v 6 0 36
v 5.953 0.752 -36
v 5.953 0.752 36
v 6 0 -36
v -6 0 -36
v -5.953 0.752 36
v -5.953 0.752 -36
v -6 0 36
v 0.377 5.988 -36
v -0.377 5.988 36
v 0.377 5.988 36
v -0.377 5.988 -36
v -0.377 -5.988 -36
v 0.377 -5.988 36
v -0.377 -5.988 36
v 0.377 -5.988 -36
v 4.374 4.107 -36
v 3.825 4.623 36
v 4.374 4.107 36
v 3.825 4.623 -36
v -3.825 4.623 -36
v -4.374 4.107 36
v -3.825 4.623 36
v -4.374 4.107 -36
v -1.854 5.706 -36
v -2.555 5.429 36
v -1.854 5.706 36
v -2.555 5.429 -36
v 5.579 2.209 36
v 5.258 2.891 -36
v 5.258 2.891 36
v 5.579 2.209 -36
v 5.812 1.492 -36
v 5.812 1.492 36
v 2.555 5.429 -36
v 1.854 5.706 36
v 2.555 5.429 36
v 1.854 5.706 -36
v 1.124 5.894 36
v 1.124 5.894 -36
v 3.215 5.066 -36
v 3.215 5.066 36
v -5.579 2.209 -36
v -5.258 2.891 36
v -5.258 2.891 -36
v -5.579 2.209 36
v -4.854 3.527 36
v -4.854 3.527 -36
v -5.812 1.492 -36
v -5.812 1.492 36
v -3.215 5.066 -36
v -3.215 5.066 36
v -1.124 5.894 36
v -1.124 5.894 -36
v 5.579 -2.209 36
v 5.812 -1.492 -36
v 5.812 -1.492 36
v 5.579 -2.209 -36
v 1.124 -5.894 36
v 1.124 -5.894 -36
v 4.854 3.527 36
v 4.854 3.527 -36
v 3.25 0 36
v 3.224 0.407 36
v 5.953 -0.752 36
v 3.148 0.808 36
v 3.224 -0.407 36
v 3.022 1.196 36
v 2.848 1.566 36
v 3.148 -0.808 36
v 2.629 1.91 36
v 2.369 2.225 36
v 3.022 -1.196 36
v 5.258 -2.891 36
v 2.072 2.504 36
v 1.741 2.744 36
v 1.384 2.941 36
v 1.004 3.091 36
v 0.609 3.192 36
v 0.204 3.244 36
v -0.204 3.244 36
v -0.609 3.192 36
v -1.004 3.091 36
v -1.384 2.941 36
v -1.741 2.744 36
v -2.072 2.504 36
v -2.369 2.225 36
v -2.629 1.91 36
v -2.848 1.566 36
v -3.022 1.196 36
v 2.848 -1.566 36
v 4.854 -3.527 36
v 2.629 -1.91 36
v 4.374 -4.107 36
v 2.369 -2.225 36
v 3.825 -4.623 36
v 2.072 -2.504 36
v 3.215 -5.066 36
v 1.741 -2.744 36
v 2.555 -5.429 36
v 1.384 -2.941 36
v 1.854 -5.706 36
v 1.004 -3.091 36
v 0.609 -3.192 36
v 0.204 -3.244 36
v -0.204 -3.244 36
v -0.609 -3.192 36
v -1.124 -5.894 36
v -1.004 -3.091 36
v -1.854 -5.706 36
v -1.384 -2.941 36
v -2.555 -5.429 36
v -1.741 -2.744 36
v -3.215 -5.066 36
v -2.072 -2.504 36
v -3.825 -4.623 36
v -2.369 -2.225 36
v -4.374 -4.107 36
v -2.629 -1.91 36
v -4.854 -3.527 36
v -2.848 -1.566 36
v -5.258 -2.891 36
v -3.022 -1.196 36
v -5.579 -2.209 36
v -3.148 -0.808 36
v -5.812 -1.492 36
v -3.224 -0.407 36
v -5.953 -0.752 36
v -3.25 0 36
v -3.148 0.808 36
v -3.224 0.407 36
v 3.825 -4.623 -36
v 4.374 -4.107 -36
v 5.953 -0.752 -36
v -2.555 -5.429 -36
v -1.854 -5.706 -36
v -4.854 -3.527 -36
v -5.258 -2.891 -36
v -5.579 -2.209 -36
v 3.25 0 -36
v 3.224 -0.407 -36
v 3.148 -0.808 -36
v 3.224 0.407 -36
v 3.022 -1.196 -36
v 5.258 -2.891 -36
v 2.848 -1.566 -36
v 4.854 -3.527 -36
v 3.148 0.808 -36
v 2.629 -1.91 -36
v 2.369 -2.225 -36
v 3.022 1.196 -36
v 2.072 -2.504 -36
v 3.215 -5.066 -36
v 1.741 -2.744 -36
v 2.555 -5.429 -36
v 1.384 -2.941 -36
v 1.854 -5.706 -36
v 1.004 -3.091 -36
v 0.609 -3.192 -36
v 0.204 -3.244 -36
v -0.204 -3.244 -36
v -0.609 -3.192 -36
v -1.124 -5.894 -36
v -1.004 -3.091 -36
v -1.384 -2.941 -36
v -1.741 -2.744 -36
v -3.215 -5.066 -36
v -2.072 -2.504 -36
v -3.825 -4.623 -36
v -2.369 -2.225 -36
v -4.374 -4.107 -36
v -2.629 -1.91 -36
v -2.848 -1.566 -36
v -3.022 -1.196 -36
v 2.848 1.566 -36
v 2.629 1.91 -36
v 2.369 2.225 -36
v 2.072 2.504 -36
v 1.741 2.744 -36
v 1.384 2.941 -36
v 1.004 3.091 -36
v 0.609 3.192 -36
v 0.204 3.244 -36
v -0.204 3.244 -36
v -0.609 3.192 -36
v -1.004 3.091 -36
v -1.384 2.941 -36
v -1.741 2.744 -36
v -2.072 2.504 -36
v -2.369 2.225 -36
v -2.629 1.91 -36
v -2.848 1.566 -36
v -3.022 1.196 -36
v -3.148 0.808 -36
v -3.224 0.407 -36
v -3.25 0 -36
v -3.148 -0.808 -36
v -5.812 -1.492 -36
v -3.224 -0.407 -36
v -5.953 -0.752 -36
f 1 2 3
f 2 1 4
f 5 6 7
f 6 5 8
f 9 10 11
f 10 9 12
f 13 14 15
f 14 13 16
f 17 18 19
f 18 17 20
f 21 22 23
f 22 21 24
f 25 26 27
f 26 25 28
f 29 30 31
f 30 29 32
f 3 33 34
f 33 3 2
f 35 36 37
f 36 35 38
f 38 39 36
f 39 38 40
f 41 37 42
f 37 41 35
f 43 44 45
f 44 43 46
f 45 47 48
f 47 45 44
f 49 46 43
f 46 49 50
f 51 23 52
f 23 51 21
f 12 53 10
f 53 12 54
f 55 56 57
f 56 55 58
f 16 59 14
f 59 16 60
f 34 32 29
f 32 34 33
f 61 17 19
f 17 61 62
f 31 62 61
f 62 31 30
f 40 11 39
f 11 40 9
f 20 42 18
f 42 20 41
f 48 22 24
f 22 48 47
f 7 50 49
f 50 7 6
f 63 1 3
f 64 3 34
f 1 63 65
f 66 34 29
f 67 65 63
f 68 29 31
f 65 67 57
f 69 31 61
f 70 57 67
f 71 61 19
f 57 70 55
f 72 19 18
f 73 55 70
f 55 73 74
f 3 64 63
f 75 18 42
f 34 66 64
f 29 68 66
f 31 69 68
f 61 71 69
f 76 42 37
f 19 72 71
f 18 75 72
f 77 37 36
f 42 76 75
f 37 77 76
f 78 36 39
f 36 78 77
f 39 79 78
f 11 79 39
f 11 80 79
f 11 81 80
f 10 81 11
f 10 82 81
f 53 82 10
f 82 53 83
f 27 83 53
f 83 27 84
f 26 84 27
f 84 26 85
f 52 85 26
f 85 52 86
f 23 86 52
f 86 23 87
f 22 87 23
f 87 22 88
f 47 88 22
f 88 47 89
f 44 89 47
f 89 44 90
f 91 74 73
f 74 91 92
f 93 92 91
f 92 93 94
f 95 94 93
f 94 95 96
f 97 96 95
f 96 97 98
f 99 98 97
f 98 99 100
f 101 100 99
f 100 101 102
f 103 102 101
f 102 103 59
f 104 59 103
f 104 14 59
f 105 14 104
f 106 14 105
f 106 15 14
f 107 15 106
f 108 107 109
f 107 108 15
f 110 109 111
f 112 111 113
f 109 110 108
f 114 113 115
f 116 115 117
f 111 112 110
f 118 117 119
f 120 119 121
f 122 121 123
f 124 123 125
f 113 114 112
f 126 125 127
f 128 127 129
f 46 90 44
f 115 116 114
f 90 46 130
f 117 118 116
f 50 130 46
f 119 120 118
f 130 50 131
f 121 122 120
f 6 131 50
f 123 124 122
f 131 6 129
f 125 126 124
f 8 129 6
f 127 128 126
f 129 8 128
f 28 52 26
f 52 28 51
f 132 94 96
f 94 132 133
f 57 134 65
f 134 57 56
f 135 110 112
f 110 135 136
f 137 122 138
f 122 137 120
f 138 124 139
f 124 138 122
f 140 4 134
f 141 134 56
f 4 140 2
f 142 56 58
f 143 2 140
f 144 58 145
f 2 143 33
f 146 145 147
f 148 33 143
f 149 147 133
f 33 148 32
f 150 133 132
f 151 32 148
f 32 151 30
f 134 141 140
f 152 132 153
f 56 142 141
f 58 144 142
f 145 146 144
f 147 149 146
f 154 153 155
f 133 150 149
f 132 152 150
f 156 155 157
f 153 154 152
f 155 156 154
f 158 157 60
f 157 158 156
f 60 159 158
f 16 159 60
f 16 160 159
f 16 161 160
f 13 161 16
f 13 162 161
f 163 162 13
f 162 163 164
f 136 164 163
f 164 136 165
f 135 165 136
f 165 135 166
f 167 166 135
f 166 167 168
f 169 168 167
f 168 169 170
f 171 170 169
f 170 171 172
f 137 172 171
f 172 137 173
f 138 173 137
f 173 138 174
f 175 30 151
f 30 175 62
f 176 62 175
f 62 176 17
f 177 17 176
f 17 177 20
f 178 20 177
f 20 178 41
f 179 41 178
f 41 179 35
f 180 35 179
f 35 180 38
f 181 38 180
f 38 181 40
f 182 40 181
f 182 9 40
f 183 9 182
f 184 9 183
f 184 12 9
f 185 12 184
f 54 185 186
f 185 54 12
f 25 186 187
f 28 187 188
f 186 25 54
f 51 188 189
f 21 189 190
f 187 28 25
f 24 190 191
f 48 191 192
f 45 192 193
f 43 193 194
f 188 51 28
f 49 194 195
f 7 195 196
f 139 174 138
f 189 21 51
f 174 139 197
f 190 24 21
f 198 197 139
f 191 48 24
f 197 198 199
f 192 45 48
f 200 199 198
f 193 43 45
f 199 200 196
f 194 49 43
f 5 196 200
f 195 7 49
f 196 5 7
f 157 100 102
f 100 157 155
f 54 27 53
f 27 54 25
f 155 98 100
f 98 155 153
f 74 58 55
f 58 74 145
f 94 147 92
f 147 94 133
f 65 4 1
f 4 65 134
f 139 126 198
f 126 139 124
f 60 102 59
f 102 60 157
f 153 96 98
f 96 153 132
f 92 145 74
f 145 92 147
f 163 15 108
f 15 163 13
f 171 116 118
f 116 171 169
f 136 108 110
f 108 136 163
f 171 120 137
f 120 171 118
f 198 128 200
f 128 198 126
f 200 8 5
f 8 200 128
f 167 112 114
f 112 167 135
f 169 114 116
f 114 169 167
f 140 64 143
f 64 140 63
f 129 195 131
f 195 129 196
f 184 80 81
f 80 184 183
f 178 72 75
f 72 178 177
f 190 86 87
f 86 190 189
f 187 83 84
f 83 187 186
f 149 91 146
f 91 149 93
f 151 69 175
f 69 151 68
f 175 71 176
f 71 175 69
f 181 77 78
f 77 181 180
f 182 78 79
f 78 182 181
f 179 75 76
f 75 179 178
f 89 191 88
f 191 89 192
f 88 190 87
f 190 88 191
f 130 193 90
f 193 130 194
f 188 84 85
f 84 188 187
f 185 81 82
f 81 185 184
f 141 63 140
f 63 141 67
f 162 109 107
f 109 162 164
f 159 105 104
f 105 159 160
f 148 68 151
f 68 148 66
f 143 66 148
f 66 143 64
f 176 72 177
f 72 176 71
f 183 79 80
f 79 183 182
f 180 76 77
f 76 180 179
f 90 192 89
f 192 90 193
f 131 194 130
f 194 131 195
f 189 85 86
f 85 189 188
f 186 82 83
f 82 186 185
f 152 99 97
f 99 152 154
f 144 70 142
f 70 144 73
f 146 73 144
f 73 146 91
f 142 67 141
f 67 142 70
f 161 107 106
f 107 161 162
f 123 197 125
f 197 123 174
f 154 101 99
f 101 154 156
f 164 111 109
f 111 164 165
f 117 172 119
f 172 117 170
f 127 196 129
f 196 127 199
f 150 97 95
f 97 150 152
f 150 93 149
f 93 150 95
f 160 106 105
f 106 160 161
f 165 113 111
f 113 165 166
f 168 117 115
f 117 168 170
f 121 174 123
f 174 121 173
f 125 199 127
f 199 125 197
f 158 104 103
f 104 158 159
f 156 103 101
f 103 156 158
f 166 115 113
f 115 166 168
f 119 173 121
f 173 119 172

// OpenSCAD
$fn = 50;


difference() {
	union() {
		translate(v = [0, 0, -36.0000000000]) {
			cylinder(h = 72, r = 6.0000000000);
		}
	}
	union() {
		translate(v = [0, 0, -100.0000000000]) {
			cylinder(h = 200, r = 3.2500000000);
		}
	}
}
